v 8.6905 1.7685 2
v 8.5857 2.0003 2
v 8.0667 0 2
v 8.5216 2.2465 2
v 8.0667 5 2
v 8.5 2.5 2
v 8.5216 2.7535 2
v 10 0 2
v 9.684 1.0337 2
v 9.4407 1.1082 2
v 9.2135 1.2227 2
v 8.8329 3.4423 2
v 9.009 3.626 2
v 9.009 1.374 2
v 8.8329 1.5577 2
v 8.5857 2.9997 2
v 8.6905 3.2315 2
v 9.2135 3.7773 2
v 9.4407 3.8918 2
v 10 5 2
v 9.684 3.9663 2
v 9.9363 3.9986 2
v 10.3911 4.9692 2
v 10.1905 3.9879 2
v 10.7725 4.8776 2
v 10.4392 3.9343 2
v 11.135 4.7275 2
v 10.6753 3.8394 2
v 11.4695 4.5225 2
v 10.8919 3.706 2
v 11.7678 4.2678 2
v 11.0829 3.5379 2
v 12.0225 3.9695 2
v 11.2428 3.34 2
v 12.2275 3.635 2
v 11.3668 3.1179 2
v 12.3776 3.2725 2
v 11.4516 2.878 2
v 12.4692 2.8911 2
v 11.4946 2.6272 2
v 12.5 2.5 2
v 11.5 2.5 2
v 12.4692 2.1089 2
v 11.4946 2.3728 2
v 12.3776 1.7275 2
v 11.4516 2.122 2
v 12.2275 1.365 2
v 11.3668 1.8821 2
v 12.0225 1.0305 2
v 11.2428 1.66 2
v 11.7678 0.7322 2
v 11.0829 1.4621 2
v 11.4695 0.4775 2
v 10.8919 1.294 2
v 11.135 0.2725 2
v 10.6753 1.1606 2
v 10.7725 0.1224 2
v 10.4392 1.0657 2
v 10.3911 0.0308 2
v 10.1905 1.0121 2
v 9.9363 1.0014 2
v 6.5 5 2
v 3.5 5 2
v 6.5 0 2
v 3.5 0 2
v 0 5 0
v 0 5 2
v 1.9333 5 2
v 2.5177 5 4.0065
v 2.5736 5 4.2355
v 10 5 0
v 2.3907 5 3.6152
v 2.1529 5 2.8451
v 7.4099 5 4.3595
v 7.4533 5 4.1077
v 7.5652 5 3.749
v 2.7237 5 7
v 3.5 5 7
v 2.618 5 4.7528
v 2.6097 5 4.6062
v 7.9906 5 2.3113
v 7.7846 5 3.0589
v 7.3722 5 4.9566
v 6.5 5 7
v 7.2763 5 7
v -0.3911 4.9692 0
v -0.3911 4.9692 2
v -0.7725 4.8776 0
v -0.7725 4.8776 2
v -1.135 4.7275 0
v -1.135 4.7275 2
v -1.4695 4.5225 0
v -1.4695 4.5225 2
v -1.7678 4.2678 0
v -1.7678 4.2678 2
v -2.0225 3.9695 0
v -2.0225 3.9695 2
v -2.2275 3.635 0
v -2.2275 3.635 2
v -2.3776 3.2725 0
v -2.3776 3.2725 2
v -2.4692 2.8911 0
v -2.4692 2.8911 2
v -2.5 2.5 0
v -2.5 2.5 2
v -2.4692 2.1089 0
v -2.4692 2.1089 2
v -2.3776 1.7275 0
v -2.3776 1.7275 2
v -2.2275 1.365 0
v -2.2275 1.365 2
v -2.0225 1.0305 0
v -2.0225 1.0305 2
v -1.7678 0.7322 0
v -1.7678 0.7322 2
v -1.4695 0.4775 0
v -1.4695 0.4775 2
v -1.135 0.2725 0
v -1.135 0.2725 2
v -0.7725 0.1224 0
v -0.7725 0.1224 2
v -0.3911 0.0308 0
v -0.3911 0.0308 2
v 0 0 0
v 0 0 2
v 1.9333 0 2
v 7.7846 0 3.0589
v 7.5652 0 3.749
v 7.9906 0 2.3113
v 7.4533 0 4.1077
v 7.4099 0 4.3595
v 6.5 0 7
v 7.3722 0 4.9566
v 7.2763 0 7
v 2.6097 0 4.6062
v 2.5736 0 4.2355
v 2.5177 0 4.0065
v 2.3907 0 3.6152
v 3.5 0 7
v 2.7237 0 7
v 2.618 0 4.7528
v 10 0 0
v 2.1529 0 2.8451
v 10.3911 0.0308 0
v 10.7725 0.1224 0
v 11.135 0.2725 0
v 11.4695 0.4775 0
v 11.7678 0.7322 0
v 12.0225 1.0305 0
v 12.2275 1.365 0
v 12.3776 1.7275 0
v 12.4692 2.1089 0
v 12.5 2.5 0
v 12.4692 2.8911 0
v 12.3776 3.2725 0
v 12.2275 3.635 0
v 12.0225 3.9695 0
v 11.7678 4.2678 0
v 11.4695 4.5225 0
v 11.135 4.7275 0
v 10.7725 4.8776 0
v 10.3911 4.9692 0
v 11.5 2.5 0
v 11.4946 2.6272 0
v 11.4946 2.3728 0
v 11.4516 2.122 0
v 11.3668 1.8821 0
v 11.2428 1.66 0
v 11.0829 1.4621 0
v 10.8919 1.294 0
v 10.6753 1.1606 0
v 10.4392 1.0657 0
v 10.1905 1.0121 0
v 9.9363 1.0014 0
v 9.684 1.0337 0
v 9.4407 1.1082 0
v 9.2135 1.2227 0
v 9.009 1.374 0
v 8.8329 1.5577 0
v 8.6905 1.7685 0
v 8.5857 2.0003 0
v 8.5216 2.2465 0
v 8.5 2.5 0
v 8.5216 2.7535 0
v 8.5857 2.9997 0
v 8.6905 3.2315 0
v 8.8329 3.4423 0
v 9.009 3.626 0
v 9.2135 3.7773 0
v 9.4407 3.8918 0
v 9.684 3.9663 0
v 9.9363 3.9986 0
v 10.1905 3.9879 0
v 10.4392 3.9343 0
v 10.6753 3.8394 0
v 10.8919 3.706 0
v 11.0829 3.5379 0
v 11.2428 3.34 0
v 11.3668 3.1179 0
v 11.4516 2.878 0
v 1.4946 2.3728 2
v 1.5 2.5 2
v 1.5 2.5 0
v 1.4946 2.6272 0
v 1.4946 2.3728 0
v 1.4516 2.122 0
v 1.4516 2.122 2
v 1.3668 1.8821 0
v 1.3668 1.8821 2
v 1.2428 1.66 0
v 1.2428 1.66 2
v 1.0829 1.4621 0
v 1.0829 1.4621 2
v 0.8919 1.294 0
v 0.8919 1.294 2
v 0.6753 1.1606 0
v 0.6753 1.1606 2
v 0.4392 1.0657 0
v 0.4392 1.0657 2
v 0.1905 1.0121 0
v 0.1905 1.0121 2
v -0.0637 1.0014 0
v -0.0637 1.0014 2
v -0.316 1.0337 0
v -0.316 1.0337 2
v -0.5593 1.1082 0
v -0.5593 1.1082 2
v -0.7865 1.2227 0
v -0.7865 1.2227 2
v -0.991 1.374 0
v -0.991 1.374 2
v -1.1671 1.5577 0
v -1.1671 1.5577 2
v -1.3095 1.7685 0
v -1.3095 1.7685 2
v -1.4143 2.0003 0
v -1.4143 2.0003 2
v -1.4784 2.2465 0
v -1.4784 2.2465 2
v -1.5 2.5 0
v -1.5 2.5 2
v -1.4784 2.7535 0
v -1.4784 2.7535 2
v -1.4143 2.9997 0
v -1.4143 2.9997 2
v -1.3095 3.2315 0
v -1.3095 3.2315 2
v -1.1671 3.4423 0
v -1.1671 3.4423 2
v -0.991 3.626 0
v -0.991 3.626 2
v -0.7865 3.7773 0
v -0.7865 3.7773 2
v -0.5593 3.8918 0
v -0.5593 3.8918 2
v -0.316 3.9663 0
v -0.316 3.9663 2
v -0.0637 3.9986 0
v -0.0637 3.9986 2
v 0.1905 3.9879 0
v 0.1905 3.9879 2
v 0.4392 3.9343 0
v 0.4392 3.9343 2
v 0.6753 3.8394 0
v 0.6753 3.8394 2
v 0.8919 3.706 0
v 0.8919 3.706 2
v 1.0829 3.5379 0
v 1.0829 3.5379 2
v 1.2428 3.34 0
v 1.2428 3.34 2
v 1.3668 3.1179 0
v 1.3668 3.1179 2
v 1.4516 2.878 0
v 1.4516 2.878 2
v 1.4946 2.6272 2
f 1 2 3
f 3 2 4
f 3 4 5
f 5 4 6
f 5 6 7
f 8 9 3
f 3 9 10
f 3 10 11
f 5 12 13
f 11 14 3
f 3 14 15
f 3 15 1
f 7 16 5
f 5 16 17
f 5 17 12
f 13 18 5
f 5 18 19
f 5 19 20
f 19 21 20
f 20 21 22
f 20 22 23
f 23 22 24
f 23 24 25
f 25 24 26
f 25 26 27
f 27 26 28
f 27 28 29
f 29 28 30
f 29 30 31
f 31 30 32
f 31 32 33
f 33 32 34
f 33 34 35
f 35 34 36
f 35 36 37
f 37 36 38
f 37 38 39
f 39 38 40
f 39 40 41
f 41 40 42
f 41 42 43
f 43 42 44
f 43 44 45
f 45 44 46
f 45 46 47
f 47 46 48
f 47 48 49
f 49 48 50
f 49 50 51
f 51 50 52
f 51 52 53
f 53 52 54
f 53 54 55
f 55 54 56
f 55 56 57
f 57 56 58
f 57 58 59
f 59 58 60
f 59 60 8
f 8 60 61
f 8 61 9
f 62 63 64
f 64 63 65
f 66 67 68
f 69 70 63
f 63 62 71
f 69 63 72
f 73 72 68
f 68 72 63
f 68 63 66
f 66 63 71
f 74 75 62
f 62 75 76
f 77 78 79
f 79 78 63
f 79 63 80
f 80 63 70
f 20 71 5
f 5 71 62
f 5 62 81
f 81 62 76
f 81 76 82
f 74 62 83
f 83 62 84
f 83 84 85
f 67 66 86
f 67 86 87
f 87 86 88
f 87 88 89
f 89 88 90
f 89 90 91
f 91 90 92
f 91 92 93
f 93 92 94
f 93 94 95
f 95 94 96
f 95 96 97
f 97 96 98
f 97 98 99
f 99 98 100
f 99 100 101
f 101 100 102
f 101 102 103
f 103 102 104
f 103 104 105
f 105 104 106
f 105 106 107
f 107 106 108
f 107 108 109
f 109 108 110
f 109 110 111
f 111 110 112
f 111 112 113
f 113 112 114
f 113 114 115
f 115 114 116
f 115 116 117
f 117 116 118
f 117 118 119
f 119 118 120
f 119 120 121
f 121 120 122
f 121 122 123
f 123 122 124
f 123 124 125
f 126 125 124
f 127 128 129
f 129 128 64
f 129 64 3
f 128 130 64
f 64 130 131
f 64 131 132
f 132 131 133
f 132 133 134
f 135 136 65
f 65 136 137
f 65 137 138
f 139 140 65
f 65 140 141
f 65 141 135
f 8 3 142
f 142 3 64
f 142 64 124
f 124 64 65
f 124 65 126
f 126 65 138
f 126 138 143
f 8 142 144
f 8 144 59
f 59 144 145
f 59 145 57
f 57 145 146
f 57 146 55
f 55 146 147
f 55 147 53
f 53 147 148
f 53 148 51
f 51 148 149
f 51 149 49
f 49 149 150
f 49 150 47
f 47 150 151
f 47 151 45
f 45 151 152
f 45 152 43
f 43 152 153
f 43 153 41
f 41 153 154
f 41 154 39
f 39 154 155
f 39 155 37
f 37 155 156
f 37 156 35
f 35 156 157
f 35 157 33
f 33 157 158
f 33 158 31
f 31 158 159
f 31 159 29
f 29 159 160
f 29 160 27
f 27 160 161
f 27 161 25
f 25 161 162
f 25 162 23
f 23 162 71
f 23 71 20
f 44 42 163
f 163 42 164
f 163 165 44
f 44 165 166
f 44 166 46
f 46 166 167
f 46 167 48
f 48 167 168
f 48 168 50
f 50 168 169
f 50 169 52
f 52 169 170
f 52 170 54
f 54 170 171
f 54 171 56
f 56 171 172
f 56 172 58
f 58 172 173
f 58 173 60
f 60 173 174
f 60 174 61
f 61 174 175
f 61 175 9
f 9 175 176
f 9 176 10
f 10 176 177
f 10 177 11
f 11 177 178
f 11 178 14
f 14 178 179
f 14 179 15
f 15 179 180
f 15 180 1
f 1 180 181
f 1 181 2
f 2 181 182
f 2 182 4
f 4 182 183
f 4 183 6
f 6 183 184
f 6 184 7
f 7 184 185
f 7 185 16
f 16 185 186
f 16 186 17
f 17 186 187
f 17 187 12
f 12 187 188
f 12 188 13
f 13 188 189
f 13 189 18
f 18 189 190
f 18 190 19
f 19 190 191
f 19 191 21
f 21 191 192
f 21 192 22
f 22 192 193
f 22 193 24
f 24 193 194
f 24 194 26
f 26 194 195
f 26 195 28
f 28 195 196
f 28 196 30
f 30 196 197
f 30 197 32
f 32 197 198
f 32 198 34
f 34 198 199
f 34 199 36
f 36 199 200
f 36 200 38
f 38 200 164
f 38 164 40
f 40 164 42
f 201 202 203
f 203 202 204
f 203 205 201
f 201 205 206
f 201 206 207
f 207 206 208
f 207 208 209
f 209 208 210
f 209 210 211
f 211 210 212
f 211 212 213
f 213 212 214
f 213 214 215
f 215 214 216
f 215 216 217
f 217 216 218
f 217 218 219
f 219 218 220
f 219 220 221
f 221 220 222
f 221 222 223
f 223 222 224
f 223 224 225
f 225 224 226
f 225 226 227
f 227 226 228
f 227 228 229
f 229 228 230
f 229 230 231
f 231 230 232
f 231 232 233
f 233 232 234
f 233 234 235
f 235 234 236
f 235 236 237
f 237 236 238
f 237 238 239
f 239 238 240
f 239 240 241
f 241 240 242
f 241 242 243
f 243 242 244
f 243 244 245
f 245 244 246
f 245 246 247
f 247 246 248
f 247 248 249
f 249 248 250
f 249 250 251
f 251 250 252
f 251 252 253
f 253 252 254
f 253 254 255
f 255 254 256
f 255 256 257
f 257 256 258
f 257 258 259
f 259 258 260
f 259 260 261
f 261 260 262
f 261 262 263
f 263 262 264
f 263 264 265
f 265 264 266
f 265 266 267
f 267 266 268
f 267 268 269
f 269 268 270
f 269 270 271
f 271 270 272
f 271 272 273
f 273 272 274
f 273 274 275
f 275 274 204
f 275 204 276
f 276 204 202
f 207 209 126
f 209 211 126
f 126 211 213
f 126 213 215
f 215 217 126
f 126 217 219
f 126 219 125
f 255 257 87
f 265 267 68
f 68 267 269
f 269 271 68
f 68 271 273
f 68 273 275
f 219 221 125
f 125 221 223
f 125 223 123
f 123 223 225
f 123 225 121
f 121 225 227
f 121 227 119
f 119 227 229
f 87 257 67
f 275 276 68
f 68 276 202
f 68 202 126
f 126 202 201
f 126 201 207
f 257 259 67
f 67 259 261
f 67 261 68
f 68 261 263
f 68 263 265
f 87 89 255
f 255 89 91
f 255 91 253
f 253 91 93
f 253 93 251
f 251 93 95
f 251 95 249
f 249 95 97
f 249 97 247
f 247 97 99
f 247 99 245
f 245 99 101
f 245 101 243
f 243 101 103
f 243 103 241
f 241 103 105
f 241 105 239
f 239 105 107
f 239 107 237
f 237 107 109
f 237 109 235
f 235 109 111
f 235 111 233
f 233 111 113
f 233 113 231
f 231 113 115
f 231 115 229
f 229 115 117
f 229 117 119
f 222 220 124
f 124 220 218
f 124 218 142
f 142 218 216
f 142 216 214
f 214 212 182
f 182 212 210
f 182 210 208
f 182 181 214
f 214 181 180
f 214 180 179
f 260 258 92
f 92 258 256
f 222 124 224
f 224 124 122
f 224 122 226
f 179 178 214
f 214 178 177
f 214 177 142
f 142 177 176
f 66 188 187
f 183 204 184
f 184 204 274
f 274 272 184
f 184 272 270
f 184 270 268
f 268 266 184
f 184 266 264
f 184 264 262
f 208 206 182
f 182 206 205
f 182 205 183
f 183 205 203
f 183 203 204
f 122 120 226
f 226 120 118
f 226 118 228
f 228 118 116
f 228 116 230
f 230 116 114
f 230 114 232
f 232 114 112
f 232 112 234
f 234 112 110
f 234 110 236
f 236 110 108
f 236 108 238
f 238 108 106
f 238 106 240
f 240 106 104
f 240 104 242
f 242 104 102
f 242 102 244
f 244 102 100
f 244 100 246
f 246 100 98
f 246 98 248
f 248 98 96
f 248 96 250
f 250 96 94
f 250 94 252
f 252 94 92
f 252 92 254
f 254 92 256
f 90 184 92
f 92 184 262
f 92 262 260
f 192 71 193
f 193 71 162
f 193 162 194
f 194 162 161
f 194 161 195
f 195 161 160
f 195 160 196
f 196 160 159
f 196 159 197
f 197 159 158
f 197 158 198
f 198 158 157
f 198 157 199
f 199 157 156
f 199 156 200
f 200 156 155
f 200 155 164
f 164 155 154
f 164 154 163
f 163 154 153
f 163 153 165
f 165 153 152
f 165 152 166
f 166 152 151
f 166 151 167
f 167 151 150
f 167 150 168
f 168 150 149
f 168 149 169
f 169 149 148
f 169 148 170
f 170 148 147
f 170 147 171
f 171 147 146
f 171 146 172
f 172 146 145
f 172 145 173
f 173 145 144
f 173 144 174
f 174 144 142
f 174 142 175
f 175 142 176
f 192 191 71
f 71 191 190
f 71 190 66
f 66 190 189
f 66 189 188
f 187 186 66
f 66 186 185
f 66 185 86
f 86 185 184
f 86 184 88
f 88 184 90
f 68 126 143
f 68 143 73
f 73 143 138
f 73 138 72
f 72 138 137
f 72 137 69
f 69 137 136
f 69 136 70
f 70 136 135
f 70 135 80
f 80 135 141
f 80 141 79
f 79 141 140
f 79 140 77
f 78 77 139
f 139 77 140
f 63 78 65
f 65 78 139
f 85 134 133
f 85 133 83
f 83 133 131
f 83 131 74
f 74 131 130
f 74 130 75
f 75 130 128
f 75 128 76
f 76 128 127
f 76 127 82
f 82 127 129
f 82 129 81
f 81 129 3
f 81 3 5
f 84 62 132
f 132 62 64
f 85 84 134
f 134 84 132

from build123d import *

# Parameters (mm, degrees)
SKETCH1_R           = 1.5
BOSS_EXTRUDE1_DEPTH = 2
BOSS_EXTRUDE2_DEPTH = 5


with BuildPart() as part:
    # Sketch1 → Boss-Extrude1 (new body)
    with BuildSketch(Plane.XY):
        with BuildLine():
            Line((0, 0), (10, 0))
            ThreePointArc((10, 0), (12.5, 2.5), (10, 5))
            Line((10, 5), (0, 5))
            ThreePointArc((0, 5), (-2.5, 2.5), (0, 0))
        make_face()
        with Locations((0, 2.5)):
            Circle(SKETCH1_R, mode=Mode.SUBTRACT)
        with Locations((10, 2.5)):
            Circle(SKETCH1_R, mode=Mode.SUBTRACT)
    extrude(amount=BOSS_EXTRUDE1_DEPTH)

    # Sketch2 → Boss-Extrude2 (add)
    with BuildSketch(Plane(origin=(0, 0, 0), x_dir=(1, 0, 0), z_dir=(0, 1, 0))):
        with BuildLine():
            Line((2.723714879, -2), (3.5, -2))
            Line((3.5, -2), (3.5, -7))
            Line((3.5, -7), (2.723714879, -7))
            add(Edge.make_bspline(
                [(2.723714879, -7), (2.623482732, -5.096496359), (2.626841272, -4.377777821), (2.43389568, -3.713843944), (2.176399926, -3.027645535), (1.933254484, -2)],
                knots=[0, 0, 0, 0, 0.37067554, 0.47067554, 1, 1, 1, 1], degree=3))
            Line((1.933254484, -2), (2.723714879, -2))
        make_face()
        with BuildLine():
            Line((8.066745516, -2), (7.276285121, -2))
            Line((7.276285121, -2), (6.5, -2))
            Line((6.5, -2), (6.5, -7))
            Line((6.5, -7), (7.276285121, -7))
            add(Edge.make_bspline(
                [(7.276285121, -7), (7.376517268, -5.096496359), (7.373158728, -4.377777821), (7.56610432, -3.713843944), (7.823600074, -3.027645535), (8.066745516, -2)],
                knots=[0, 0, 0, 0, 0.37067554, 0.47067554, 1, 1, 1, 1], degree=3))
        make_face()
    extrude(amount=BOSS_EXTRUDE2_DEPTH)


solid = part.part
